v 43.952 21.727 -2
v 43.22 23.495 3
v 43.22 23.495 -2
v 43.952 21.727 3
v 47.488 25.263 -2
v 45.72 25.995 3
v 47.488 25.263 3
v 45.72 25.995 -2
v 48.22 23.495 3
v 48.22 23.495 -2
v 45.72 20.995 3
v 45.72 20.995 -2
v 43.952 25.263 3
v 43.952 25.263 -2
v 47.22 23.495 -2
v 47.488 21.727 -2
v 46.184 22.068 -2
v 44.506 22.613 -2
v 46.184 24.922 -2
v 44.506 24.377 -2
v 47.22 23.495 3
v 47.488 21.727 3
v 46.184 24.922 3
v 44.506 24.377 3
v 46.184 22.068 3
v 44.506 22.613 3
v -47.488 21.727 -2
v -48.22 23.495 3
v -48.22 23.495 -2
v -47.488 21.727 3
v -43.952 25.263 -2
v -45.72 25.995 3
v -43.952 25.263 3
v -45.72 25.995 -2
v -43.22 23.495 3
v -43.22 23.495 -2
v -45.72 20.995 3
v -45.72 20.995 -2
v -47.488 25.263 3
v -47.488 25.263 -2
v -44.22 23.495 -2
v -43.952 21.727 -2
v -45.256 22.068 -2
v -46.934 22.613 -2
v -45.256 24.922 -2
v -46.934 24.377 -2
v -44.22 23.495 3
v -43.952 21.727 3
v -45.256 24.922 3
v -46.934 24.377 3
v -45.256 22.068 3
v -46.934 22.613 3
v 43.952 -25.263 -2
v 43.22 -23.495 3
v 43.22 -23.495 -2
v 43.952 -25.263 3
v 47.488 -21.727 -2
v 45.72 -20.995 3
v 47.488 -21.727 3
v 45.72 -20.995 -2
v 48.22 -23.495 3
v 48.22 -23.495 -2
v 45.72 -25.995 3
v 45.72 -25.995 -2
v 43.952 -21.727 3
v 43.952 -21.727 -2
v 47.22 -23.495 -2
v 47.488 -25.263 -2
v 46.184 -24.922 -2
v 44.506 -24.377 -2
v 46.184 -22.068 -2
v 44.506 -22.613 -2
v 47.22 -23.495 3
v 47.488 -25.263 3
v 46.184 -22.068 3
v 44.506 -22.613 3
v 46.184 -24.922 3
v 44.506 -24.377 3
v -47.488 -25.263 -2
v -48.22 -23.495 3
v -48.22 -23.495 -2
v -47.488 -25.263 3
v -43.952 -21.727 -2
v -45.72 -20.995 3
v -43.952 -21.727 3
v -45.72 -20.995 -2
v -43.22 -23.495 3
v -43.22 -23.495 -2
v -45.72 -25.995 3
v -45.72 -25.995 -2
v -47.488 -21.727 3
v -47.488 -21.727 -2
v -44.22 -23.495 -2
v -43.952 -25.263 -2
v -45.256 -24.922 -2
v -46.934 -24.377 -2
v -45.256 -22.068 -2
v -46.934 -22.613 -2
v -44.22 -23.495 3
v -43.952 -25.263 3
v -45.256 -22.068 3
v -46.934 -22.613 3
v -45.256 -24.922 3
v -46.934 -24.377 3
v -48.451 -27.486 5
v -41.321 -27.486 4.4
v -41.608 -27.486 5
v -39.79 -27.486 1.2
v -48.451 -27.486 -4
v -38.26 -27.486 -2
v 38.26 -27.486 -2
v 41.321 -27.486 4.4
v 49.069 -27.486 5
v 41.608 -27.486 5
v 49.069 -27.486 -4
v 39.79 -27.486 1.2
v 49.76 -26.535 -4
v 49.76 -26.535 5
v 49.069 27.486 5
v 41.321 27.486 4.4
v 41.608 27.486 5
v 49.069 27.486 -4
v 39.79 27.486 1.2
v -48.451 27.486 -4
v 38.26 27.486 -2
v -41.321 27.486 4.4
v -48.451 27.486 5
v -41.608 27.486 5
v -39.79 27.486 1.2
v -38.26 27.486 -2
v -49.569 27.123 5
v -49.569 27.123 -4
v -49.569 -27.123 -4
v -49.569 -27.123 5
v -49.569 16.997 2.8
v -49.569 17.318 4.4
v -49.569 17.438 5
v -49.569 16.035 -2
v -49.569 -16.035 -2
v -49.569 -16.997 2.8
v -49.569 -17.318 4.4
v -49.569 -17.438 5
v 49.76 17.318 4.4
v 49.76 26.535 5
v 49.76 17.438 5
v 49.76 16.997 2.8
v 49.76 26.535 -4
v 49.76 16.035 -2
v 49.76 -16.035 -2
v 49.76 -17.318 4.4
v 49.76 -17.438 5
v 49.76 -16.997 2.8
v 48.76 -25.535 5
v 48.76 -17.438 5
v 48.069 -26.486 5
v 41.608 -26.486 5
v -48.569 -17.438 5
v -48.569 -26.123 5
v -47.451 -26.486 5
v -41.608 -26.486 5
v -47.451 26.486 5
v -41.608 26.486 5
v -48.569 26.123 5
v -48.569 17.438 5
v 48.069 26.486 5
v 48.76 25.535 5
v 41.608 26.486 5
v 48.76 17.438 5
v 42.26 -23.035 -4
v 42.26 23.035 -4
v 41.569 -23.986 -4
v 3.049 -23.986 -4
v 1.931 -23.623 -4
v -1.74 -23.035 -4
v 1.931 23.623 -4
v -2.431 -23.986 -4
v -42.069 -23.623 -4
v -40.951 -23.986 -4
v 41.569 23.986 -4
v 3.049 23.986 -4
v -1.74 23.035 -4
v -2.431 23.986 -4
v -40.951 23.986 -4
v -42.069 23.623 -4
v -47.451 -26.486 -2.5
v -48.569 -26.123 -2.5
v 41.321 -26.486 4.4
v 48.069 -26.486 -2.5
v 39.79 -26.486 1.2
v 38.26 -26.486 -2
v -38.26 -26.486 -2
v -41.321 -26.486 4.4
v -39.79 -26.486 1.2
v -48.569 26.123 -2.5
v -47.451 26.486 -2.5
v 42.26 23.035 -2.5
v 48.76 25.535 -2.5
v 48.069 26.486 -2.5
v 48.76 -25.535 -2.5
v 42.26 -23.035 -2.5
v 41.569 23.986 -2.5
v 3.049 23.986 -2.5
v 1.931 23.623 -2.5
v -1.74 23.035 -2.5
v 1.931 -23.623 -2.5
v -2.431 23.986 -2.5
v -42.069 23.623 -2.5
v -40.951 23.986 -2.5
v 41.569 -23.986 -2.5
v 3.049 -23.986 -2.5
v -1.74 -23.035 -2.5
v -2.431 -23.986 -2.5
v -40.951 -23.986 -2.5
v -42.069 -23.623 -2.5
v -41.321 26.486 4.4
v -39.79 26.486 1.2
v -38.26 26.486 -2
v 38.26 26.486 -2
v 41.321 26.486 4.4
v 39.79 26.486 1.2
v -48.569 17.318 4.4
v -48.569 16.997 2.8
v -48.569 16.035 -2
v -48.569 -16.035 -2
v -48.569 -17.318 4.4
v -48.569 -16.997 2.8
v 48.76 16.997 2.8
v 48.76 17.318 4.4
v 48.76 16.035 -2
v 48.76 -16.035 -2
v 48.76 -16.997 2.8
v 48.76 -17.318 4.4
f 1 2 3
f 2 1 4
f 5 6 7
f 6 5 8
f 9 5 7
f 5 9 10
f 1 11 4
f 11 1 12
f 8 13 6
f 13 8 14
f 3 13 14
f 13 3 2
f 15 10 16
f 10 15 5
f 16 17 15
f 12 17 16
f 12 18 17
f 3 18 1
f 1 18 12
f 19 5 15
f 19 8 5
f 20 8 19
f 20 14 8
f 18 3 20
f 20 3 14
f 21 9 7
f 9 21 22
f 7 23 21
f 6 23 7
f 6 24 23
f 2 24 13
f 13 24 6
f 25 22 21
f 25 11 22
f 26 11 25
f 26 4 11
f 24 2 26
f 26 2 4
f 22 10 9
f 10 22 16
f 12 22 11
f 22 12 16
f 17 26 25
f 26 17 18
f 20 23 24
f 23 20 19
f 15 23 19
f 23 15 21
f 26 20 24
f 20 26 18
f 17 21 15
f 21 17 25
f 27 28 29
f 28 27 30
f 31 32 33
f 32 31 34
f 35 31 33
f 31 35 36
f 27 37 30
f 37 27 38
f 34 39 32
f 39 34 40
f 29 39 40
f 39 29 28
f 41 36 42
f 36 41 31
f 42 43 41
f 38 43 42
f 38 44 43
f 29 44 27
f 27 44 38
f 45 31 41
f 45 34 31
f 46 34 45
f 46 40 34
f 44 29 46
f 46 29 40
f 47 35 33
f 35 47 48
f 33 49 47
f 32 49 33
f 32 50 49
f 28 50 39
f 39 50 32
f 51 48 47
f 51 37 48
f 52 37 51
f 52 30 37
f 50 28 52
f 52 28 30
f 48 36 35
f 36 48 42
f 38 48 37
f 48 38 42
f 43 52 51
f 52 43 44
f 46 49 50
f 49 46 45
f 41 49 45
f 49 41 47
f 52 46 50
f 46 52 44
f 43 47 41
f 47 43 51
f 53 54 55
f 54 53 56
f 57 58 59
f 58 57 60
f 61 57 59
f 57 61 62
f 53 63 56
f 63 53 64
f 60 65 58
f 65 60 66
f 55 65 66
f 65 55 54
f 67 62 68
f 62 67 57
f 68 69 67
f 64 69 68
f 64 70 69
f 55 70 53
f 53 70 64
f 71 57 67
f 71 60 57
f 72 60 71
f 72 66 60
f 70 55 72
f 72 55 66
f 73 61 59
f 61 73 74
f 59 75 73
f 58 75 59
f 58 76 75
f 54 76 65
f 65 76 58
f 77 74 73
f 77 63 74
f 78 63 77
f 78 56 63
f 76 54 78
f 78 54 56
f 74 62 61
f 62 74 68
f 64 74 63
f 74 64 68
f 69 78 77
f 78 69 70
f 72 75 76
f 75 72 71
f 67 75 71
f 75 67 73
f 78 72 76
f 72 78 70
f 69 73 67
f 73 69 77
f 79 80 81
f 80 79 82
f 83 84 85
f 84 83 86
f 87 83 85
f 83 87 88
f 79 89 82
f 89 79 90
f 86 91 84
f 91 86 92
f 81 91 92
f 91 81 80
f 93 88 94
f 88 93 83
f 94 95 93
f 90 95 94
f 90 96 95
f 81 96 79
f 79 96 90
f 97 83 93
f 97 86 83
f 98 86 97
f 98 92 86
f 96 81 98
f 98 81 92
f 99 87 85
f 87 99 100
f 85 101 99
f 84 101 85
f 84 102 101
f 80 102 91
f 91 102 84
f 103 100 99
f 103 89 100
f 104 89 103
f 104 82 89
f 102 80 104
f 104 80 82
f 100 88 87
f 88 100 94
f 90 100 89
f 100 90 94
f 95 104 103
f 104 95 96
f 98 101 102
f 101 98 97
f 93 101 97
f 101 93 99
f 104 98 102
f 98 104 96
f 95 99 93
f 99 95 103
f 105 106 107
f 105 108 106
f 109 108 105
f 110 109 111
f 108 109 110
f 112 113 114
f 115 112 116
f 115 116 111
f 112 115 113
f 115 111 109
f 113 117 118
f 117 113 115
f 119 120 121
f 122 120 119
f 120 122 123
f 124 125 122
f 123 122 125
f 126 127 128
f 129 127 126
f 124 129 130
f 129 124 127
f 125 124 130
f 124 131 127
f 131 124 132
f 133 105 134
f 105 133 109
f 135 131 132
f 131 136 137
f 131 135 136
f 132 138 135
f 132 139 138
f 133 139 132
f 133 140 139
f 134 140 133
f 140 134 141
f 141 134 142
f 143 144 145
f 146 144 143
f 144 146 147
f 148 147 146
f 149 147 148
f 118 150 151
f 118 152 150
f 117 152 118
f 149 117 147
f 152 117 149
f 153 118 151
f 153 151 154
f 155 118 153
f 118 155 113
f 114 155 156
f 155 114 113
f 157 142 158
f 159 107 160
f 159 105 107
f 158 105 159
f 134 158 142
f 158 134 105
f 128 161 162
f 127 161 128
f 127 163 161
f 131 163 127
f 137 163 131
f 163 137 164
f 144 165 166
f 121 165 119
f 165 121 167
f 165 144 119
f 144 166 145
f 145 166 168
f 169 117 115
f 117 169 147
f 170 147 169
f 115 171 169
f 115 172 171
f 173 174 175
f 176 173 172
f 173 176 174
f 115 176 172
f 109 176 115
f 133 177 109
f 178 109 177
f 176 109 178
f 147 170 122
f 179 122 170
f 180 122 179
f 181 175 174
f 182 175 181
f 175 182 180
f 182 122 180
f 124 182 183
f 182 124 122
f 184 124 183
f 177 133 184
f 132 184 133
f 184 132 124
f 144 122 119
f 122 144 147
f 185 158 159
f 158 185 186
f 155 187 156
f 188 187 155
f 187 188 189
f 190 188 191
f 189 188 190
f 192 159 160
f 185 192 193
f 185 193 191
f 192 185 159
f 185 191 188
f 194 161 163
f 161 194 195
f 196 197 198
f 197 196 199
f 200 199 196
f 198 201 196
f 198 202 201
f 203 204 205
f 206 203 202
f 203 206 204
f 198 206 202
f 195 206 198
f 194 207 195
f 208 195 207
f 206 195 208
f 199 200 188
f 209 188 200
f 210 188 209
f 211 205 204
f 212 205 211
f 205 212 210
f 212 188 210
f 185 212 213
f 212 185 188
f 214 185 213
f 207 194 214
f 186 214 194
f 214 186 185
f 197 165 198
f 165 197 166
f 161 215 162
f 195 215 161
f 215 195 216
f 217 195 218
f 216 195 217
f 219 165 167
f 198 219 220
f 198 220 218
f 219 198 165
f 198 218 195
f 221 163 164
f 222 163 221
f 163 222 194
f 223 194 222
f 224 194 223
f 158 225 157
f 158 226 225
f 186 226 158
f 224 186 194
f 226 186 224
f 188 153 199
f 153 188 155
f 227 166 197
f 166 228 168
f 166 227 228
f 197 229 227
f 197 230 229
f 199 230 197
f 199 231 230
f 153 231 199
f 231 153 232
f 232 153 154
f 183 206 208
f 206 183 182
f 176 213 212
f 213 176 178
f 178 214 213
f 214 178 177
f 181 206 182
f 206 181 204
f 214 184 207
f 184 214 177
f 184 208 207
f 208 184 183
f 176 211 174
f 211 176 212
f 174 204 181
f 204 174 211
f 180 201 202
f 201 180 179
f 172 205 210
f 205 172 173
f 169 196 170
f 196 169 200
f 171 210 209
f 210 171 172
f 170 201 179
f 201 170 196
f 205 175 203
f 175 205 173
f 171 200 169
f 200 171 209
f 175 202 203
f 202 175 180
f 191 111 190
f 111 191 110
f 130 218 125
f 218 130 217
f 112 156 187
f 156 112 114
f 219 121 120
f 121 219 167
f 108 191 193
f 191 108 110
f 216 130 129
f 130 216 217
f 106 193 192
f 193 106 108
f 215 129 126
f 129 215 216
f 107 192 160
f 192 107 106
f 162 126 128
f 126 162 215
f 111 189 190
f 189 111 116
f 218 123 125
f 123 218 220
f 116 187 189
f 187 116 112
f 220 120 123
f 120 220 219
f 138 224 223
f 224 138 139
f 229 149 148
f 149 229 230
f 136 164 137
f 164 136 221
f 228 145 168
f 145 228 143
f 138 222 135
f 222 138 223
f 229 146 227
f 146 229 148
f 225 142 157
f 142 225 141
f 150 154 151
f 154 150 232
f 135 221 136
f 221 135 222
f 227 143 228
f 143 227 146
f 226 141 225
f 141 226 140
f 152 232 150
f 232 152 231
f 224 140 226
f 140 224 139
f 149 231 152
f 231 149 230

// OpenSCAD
PLATE=[60,110,3];
PICO=[51,21];
PICOloc=[0, -12, 0];
COWBELL=PICO;
COWBELLloc=[0, +12, 0];
GPS=[13.1,15.7];
GPSloc=[18, -35, 0];
ACC=[25.4,17.8];
ACCloc=[-12, -35, 0];
ESP=[41.7, 24.5];
ESPloc=[0, +38, 0];
PIN1=[5,2];
PIN1loc=[-25,35,0];
PIN2=PIN1;
PIN2loc=[6,-35,0];
PIN3=PIN1;
PIN3loc=[25,35,0];

TRIPLER=[96.52,52.07,5]; 
smidge=0.1;
font_size = 5;
text_height = 2;

tripler();
outside=TRIPLER;
//                translate([0,0,0]) linear_extrude(height=5, scale=[1.1,1.0])
//                     square([outside[0],outside[1]]-[23,-8], center=true);
//topPlate();
//bottomPlate();

//tripler
module tripler(baseSize=TRIPLER) {
translate([0,0,0]) {
        outside = baseSize+[3,3,5];
        inside  = outside-[2,2,0];
        pinHeight = 5;
        union() {
            difference() {
                roundedcube_corners(outside, center=true, radius = 1.0);
                translate([0,0,+1.5])
                    roundedcube_corners(inside, center=true, radius = 1.0);
                translate([-22,0,-2])
                    roundedcube_corners(inside-[57,5,0], center=true, radius = 1.0);
                translate([22,0,-2])
                    roundedcube_corners(inside-[57,5,0], center=true, radius = 1.0);           
                translate([0,0,-2]) linear_extrude(height=8, scale=[1.1,1.0])
                     square([outside[0],outside[1]]-[23,-8], center=true);
                translate([0,0,-2]) linear_extrude(height=8, scale=[1.0,1.1])
                     square([outside[0],outside[1]]-[-8,23], center=true);
                     //cube(outside-[25,-8,0], center=true);
            }
            pin([45.72,23.495,-2], h=pinHeight);
            pin([-45.72,23.495,-2], h=pinHeight);
            pin([45.72,-23.495,-2], h=pinHeight);
            pin([-45.72,-23.495,-2], h=pinHeight);

        }
    }
}


//Bottom plate
module bottomPlate() {
    translate([70,0,0]) {
        union() {
            difference() {
                roundedcube_corners(PLATE, center=true, radius = 1.0);
                // Raspberry Pi Pico 2w
                translate(PICOloc)
                    cutout2(size=PICO, thickness=4);
                // Adafruit Picowbell Adatalogger
                translate(COWBELLloc)
                    cutout2(size=COWBELL, thickness=4);
                // Teyleten ATGM336H GPS
                translate(GPSloc)
                    cutout2(size=GPS, thickness=4); 
                // Adafruit LIS3DH STEMMA Breakout
                translate(ACCloc)
                    cutout2(size=ACC, thickness=4);
                 // Geekstory ESP=01 Breakout
                translate(ESPloc)
                    cutout2(size=ESP, thickness=4);
            }
            translate(PIN1loc) cylinder(h=PIN1[0], r=PIN1[1], center=false);
            translate(PIN2loc) cylinder(h=PIN2[0], r=PIN2[1], center=false);
            translate(PIN3loc) cylinder(h=PIN3[0], r=PIN3[1], center=false);
        }
    }
}

module topPlate() {
    translate([0,0,0]) {
        difference() {
            roundedcube_corners(PLATE+[0,0,-0.75], center=true, radius = 1.0);
            // Raspberry Pi Pico 2w
            translate(PICOloc)
                cutout2(size=PICO, thickness=4, flat=true);
            // Adafruit Picowbell Adatalogger
            translate(COWBELLloc)
                cutout2(size=COWBELL, thickness=4, flat=true);
            // Teyleten ATGM336H GPS
            translate(GPSloc)
                cutout2(size=GPS, thickness=4, flat=true); 
            // Adafruit LIS3DH STEMMA Breakout
            translate(ACCloc)
                cutout2(size=ACC, thickness=4, flat=true);
            // Geekstory ESP=01 Breakout
            translate(ESPloc)
                cutout2(size=ESP, thickness=4, flat=true);
            translate(PIN1loc+[0,0,-1]) cylinder(h=PIN1[0], r=PIN1[1]+smidge, center=false);
            translate(PIN2loc+[0,0,-1]) cylinder(h=PIN2[0], r=PIN2[1]+smidge, center=false);
            translate(PIN3loc+[0,0,-1]) cylinder(h=PIN3[0], r=PIN3[1]+smidge, center=false);
        }
        translate([0,(-PLATE[1]/2)+7,0])
        linear_extrude(height = text_height) {
            text("OpenPonyLogger", size = font_size, halign="center", valign="center");
            translate([8,-5,0])
            text("Copywrite John Orthoefer 2025", size=2, halign="center", valign="center");
        }
    }
}

module roundedcube_corners(size = [1, 1, 1], center = false, radius = 0.5) {
    // If single value, convert to [x, y, z] vector
    size = (size[0] == undef) ? [size, size, size] : size;

    translate = (center == false) ?
        [radius, radius, radius] :
        [
            radius - (size[0] / 2),
            radius - (size[1] / 2),
            radius - (size[2] / 2)
    ];

    translate(v = translate)
    minkowski() {
        cube(size = [
            size[0] - (radius * 2),
            size[1] - (radius * 2),
            size[2] - (radius * 2)
        ]);
        cylinder(r = radius);
    }
}
module cutout2(size=[51,21], thickness=2.0, corner=1.0, offset=[1,1], flat=false) {
    xoff = (size[0]/2)-(corner/2);
    yoff = (size[1]/2)-(corner/2);
    thickoff = thickness/2;
    union() {
        roundedcube_corners(size=[size[0]-offset[0],size[1]-offset[1], thickness], center=true);
        if (!flat) {
        translate([0,0,thickoff])
            roundedcube_corners(size=[size[0],size[1], thickness], center=true);
        }
    }
}
    
module cutout(size=[51,21], thickness=2.0, corner=1.0, offset=[1,1]) {
    xoff = (size[0]/2)-(corner/2);
    yoff = (size[1]/2)-(corner/2);
    thickoff = thickness/2;
    union() {
        cube(size=[size[0]-offset[0],size[1]-offset[1], thickness], center=true);
        translate([0,0,thickoff])
            cube(size=[size[0],size[1], thickness], center=true);
        translate([xoff, yoff, thickoff])
            cylinder(h=thickness, r=corner, center=true);
        translate([-xoff, yoff, thickoff])
            cylinder(h=thickness, r=corner, center=true);
        translate([xoff, -yoff, thickoff])
            cylinder(h=thickness, r=corner, center=true);
        translate([-xoff, -yoff, thickoff])
            cylinder(h=thickness, r=corner, center=true);
    }
}
 
module pin(loc=[0,0,0], h=3, r=2) {
    translate(loc) difference(){
        cylinder(h=h, r=r+0.5, center=false);
        cylinder(h=h+0.5, r=r-0.5, center=false);
    }
}
